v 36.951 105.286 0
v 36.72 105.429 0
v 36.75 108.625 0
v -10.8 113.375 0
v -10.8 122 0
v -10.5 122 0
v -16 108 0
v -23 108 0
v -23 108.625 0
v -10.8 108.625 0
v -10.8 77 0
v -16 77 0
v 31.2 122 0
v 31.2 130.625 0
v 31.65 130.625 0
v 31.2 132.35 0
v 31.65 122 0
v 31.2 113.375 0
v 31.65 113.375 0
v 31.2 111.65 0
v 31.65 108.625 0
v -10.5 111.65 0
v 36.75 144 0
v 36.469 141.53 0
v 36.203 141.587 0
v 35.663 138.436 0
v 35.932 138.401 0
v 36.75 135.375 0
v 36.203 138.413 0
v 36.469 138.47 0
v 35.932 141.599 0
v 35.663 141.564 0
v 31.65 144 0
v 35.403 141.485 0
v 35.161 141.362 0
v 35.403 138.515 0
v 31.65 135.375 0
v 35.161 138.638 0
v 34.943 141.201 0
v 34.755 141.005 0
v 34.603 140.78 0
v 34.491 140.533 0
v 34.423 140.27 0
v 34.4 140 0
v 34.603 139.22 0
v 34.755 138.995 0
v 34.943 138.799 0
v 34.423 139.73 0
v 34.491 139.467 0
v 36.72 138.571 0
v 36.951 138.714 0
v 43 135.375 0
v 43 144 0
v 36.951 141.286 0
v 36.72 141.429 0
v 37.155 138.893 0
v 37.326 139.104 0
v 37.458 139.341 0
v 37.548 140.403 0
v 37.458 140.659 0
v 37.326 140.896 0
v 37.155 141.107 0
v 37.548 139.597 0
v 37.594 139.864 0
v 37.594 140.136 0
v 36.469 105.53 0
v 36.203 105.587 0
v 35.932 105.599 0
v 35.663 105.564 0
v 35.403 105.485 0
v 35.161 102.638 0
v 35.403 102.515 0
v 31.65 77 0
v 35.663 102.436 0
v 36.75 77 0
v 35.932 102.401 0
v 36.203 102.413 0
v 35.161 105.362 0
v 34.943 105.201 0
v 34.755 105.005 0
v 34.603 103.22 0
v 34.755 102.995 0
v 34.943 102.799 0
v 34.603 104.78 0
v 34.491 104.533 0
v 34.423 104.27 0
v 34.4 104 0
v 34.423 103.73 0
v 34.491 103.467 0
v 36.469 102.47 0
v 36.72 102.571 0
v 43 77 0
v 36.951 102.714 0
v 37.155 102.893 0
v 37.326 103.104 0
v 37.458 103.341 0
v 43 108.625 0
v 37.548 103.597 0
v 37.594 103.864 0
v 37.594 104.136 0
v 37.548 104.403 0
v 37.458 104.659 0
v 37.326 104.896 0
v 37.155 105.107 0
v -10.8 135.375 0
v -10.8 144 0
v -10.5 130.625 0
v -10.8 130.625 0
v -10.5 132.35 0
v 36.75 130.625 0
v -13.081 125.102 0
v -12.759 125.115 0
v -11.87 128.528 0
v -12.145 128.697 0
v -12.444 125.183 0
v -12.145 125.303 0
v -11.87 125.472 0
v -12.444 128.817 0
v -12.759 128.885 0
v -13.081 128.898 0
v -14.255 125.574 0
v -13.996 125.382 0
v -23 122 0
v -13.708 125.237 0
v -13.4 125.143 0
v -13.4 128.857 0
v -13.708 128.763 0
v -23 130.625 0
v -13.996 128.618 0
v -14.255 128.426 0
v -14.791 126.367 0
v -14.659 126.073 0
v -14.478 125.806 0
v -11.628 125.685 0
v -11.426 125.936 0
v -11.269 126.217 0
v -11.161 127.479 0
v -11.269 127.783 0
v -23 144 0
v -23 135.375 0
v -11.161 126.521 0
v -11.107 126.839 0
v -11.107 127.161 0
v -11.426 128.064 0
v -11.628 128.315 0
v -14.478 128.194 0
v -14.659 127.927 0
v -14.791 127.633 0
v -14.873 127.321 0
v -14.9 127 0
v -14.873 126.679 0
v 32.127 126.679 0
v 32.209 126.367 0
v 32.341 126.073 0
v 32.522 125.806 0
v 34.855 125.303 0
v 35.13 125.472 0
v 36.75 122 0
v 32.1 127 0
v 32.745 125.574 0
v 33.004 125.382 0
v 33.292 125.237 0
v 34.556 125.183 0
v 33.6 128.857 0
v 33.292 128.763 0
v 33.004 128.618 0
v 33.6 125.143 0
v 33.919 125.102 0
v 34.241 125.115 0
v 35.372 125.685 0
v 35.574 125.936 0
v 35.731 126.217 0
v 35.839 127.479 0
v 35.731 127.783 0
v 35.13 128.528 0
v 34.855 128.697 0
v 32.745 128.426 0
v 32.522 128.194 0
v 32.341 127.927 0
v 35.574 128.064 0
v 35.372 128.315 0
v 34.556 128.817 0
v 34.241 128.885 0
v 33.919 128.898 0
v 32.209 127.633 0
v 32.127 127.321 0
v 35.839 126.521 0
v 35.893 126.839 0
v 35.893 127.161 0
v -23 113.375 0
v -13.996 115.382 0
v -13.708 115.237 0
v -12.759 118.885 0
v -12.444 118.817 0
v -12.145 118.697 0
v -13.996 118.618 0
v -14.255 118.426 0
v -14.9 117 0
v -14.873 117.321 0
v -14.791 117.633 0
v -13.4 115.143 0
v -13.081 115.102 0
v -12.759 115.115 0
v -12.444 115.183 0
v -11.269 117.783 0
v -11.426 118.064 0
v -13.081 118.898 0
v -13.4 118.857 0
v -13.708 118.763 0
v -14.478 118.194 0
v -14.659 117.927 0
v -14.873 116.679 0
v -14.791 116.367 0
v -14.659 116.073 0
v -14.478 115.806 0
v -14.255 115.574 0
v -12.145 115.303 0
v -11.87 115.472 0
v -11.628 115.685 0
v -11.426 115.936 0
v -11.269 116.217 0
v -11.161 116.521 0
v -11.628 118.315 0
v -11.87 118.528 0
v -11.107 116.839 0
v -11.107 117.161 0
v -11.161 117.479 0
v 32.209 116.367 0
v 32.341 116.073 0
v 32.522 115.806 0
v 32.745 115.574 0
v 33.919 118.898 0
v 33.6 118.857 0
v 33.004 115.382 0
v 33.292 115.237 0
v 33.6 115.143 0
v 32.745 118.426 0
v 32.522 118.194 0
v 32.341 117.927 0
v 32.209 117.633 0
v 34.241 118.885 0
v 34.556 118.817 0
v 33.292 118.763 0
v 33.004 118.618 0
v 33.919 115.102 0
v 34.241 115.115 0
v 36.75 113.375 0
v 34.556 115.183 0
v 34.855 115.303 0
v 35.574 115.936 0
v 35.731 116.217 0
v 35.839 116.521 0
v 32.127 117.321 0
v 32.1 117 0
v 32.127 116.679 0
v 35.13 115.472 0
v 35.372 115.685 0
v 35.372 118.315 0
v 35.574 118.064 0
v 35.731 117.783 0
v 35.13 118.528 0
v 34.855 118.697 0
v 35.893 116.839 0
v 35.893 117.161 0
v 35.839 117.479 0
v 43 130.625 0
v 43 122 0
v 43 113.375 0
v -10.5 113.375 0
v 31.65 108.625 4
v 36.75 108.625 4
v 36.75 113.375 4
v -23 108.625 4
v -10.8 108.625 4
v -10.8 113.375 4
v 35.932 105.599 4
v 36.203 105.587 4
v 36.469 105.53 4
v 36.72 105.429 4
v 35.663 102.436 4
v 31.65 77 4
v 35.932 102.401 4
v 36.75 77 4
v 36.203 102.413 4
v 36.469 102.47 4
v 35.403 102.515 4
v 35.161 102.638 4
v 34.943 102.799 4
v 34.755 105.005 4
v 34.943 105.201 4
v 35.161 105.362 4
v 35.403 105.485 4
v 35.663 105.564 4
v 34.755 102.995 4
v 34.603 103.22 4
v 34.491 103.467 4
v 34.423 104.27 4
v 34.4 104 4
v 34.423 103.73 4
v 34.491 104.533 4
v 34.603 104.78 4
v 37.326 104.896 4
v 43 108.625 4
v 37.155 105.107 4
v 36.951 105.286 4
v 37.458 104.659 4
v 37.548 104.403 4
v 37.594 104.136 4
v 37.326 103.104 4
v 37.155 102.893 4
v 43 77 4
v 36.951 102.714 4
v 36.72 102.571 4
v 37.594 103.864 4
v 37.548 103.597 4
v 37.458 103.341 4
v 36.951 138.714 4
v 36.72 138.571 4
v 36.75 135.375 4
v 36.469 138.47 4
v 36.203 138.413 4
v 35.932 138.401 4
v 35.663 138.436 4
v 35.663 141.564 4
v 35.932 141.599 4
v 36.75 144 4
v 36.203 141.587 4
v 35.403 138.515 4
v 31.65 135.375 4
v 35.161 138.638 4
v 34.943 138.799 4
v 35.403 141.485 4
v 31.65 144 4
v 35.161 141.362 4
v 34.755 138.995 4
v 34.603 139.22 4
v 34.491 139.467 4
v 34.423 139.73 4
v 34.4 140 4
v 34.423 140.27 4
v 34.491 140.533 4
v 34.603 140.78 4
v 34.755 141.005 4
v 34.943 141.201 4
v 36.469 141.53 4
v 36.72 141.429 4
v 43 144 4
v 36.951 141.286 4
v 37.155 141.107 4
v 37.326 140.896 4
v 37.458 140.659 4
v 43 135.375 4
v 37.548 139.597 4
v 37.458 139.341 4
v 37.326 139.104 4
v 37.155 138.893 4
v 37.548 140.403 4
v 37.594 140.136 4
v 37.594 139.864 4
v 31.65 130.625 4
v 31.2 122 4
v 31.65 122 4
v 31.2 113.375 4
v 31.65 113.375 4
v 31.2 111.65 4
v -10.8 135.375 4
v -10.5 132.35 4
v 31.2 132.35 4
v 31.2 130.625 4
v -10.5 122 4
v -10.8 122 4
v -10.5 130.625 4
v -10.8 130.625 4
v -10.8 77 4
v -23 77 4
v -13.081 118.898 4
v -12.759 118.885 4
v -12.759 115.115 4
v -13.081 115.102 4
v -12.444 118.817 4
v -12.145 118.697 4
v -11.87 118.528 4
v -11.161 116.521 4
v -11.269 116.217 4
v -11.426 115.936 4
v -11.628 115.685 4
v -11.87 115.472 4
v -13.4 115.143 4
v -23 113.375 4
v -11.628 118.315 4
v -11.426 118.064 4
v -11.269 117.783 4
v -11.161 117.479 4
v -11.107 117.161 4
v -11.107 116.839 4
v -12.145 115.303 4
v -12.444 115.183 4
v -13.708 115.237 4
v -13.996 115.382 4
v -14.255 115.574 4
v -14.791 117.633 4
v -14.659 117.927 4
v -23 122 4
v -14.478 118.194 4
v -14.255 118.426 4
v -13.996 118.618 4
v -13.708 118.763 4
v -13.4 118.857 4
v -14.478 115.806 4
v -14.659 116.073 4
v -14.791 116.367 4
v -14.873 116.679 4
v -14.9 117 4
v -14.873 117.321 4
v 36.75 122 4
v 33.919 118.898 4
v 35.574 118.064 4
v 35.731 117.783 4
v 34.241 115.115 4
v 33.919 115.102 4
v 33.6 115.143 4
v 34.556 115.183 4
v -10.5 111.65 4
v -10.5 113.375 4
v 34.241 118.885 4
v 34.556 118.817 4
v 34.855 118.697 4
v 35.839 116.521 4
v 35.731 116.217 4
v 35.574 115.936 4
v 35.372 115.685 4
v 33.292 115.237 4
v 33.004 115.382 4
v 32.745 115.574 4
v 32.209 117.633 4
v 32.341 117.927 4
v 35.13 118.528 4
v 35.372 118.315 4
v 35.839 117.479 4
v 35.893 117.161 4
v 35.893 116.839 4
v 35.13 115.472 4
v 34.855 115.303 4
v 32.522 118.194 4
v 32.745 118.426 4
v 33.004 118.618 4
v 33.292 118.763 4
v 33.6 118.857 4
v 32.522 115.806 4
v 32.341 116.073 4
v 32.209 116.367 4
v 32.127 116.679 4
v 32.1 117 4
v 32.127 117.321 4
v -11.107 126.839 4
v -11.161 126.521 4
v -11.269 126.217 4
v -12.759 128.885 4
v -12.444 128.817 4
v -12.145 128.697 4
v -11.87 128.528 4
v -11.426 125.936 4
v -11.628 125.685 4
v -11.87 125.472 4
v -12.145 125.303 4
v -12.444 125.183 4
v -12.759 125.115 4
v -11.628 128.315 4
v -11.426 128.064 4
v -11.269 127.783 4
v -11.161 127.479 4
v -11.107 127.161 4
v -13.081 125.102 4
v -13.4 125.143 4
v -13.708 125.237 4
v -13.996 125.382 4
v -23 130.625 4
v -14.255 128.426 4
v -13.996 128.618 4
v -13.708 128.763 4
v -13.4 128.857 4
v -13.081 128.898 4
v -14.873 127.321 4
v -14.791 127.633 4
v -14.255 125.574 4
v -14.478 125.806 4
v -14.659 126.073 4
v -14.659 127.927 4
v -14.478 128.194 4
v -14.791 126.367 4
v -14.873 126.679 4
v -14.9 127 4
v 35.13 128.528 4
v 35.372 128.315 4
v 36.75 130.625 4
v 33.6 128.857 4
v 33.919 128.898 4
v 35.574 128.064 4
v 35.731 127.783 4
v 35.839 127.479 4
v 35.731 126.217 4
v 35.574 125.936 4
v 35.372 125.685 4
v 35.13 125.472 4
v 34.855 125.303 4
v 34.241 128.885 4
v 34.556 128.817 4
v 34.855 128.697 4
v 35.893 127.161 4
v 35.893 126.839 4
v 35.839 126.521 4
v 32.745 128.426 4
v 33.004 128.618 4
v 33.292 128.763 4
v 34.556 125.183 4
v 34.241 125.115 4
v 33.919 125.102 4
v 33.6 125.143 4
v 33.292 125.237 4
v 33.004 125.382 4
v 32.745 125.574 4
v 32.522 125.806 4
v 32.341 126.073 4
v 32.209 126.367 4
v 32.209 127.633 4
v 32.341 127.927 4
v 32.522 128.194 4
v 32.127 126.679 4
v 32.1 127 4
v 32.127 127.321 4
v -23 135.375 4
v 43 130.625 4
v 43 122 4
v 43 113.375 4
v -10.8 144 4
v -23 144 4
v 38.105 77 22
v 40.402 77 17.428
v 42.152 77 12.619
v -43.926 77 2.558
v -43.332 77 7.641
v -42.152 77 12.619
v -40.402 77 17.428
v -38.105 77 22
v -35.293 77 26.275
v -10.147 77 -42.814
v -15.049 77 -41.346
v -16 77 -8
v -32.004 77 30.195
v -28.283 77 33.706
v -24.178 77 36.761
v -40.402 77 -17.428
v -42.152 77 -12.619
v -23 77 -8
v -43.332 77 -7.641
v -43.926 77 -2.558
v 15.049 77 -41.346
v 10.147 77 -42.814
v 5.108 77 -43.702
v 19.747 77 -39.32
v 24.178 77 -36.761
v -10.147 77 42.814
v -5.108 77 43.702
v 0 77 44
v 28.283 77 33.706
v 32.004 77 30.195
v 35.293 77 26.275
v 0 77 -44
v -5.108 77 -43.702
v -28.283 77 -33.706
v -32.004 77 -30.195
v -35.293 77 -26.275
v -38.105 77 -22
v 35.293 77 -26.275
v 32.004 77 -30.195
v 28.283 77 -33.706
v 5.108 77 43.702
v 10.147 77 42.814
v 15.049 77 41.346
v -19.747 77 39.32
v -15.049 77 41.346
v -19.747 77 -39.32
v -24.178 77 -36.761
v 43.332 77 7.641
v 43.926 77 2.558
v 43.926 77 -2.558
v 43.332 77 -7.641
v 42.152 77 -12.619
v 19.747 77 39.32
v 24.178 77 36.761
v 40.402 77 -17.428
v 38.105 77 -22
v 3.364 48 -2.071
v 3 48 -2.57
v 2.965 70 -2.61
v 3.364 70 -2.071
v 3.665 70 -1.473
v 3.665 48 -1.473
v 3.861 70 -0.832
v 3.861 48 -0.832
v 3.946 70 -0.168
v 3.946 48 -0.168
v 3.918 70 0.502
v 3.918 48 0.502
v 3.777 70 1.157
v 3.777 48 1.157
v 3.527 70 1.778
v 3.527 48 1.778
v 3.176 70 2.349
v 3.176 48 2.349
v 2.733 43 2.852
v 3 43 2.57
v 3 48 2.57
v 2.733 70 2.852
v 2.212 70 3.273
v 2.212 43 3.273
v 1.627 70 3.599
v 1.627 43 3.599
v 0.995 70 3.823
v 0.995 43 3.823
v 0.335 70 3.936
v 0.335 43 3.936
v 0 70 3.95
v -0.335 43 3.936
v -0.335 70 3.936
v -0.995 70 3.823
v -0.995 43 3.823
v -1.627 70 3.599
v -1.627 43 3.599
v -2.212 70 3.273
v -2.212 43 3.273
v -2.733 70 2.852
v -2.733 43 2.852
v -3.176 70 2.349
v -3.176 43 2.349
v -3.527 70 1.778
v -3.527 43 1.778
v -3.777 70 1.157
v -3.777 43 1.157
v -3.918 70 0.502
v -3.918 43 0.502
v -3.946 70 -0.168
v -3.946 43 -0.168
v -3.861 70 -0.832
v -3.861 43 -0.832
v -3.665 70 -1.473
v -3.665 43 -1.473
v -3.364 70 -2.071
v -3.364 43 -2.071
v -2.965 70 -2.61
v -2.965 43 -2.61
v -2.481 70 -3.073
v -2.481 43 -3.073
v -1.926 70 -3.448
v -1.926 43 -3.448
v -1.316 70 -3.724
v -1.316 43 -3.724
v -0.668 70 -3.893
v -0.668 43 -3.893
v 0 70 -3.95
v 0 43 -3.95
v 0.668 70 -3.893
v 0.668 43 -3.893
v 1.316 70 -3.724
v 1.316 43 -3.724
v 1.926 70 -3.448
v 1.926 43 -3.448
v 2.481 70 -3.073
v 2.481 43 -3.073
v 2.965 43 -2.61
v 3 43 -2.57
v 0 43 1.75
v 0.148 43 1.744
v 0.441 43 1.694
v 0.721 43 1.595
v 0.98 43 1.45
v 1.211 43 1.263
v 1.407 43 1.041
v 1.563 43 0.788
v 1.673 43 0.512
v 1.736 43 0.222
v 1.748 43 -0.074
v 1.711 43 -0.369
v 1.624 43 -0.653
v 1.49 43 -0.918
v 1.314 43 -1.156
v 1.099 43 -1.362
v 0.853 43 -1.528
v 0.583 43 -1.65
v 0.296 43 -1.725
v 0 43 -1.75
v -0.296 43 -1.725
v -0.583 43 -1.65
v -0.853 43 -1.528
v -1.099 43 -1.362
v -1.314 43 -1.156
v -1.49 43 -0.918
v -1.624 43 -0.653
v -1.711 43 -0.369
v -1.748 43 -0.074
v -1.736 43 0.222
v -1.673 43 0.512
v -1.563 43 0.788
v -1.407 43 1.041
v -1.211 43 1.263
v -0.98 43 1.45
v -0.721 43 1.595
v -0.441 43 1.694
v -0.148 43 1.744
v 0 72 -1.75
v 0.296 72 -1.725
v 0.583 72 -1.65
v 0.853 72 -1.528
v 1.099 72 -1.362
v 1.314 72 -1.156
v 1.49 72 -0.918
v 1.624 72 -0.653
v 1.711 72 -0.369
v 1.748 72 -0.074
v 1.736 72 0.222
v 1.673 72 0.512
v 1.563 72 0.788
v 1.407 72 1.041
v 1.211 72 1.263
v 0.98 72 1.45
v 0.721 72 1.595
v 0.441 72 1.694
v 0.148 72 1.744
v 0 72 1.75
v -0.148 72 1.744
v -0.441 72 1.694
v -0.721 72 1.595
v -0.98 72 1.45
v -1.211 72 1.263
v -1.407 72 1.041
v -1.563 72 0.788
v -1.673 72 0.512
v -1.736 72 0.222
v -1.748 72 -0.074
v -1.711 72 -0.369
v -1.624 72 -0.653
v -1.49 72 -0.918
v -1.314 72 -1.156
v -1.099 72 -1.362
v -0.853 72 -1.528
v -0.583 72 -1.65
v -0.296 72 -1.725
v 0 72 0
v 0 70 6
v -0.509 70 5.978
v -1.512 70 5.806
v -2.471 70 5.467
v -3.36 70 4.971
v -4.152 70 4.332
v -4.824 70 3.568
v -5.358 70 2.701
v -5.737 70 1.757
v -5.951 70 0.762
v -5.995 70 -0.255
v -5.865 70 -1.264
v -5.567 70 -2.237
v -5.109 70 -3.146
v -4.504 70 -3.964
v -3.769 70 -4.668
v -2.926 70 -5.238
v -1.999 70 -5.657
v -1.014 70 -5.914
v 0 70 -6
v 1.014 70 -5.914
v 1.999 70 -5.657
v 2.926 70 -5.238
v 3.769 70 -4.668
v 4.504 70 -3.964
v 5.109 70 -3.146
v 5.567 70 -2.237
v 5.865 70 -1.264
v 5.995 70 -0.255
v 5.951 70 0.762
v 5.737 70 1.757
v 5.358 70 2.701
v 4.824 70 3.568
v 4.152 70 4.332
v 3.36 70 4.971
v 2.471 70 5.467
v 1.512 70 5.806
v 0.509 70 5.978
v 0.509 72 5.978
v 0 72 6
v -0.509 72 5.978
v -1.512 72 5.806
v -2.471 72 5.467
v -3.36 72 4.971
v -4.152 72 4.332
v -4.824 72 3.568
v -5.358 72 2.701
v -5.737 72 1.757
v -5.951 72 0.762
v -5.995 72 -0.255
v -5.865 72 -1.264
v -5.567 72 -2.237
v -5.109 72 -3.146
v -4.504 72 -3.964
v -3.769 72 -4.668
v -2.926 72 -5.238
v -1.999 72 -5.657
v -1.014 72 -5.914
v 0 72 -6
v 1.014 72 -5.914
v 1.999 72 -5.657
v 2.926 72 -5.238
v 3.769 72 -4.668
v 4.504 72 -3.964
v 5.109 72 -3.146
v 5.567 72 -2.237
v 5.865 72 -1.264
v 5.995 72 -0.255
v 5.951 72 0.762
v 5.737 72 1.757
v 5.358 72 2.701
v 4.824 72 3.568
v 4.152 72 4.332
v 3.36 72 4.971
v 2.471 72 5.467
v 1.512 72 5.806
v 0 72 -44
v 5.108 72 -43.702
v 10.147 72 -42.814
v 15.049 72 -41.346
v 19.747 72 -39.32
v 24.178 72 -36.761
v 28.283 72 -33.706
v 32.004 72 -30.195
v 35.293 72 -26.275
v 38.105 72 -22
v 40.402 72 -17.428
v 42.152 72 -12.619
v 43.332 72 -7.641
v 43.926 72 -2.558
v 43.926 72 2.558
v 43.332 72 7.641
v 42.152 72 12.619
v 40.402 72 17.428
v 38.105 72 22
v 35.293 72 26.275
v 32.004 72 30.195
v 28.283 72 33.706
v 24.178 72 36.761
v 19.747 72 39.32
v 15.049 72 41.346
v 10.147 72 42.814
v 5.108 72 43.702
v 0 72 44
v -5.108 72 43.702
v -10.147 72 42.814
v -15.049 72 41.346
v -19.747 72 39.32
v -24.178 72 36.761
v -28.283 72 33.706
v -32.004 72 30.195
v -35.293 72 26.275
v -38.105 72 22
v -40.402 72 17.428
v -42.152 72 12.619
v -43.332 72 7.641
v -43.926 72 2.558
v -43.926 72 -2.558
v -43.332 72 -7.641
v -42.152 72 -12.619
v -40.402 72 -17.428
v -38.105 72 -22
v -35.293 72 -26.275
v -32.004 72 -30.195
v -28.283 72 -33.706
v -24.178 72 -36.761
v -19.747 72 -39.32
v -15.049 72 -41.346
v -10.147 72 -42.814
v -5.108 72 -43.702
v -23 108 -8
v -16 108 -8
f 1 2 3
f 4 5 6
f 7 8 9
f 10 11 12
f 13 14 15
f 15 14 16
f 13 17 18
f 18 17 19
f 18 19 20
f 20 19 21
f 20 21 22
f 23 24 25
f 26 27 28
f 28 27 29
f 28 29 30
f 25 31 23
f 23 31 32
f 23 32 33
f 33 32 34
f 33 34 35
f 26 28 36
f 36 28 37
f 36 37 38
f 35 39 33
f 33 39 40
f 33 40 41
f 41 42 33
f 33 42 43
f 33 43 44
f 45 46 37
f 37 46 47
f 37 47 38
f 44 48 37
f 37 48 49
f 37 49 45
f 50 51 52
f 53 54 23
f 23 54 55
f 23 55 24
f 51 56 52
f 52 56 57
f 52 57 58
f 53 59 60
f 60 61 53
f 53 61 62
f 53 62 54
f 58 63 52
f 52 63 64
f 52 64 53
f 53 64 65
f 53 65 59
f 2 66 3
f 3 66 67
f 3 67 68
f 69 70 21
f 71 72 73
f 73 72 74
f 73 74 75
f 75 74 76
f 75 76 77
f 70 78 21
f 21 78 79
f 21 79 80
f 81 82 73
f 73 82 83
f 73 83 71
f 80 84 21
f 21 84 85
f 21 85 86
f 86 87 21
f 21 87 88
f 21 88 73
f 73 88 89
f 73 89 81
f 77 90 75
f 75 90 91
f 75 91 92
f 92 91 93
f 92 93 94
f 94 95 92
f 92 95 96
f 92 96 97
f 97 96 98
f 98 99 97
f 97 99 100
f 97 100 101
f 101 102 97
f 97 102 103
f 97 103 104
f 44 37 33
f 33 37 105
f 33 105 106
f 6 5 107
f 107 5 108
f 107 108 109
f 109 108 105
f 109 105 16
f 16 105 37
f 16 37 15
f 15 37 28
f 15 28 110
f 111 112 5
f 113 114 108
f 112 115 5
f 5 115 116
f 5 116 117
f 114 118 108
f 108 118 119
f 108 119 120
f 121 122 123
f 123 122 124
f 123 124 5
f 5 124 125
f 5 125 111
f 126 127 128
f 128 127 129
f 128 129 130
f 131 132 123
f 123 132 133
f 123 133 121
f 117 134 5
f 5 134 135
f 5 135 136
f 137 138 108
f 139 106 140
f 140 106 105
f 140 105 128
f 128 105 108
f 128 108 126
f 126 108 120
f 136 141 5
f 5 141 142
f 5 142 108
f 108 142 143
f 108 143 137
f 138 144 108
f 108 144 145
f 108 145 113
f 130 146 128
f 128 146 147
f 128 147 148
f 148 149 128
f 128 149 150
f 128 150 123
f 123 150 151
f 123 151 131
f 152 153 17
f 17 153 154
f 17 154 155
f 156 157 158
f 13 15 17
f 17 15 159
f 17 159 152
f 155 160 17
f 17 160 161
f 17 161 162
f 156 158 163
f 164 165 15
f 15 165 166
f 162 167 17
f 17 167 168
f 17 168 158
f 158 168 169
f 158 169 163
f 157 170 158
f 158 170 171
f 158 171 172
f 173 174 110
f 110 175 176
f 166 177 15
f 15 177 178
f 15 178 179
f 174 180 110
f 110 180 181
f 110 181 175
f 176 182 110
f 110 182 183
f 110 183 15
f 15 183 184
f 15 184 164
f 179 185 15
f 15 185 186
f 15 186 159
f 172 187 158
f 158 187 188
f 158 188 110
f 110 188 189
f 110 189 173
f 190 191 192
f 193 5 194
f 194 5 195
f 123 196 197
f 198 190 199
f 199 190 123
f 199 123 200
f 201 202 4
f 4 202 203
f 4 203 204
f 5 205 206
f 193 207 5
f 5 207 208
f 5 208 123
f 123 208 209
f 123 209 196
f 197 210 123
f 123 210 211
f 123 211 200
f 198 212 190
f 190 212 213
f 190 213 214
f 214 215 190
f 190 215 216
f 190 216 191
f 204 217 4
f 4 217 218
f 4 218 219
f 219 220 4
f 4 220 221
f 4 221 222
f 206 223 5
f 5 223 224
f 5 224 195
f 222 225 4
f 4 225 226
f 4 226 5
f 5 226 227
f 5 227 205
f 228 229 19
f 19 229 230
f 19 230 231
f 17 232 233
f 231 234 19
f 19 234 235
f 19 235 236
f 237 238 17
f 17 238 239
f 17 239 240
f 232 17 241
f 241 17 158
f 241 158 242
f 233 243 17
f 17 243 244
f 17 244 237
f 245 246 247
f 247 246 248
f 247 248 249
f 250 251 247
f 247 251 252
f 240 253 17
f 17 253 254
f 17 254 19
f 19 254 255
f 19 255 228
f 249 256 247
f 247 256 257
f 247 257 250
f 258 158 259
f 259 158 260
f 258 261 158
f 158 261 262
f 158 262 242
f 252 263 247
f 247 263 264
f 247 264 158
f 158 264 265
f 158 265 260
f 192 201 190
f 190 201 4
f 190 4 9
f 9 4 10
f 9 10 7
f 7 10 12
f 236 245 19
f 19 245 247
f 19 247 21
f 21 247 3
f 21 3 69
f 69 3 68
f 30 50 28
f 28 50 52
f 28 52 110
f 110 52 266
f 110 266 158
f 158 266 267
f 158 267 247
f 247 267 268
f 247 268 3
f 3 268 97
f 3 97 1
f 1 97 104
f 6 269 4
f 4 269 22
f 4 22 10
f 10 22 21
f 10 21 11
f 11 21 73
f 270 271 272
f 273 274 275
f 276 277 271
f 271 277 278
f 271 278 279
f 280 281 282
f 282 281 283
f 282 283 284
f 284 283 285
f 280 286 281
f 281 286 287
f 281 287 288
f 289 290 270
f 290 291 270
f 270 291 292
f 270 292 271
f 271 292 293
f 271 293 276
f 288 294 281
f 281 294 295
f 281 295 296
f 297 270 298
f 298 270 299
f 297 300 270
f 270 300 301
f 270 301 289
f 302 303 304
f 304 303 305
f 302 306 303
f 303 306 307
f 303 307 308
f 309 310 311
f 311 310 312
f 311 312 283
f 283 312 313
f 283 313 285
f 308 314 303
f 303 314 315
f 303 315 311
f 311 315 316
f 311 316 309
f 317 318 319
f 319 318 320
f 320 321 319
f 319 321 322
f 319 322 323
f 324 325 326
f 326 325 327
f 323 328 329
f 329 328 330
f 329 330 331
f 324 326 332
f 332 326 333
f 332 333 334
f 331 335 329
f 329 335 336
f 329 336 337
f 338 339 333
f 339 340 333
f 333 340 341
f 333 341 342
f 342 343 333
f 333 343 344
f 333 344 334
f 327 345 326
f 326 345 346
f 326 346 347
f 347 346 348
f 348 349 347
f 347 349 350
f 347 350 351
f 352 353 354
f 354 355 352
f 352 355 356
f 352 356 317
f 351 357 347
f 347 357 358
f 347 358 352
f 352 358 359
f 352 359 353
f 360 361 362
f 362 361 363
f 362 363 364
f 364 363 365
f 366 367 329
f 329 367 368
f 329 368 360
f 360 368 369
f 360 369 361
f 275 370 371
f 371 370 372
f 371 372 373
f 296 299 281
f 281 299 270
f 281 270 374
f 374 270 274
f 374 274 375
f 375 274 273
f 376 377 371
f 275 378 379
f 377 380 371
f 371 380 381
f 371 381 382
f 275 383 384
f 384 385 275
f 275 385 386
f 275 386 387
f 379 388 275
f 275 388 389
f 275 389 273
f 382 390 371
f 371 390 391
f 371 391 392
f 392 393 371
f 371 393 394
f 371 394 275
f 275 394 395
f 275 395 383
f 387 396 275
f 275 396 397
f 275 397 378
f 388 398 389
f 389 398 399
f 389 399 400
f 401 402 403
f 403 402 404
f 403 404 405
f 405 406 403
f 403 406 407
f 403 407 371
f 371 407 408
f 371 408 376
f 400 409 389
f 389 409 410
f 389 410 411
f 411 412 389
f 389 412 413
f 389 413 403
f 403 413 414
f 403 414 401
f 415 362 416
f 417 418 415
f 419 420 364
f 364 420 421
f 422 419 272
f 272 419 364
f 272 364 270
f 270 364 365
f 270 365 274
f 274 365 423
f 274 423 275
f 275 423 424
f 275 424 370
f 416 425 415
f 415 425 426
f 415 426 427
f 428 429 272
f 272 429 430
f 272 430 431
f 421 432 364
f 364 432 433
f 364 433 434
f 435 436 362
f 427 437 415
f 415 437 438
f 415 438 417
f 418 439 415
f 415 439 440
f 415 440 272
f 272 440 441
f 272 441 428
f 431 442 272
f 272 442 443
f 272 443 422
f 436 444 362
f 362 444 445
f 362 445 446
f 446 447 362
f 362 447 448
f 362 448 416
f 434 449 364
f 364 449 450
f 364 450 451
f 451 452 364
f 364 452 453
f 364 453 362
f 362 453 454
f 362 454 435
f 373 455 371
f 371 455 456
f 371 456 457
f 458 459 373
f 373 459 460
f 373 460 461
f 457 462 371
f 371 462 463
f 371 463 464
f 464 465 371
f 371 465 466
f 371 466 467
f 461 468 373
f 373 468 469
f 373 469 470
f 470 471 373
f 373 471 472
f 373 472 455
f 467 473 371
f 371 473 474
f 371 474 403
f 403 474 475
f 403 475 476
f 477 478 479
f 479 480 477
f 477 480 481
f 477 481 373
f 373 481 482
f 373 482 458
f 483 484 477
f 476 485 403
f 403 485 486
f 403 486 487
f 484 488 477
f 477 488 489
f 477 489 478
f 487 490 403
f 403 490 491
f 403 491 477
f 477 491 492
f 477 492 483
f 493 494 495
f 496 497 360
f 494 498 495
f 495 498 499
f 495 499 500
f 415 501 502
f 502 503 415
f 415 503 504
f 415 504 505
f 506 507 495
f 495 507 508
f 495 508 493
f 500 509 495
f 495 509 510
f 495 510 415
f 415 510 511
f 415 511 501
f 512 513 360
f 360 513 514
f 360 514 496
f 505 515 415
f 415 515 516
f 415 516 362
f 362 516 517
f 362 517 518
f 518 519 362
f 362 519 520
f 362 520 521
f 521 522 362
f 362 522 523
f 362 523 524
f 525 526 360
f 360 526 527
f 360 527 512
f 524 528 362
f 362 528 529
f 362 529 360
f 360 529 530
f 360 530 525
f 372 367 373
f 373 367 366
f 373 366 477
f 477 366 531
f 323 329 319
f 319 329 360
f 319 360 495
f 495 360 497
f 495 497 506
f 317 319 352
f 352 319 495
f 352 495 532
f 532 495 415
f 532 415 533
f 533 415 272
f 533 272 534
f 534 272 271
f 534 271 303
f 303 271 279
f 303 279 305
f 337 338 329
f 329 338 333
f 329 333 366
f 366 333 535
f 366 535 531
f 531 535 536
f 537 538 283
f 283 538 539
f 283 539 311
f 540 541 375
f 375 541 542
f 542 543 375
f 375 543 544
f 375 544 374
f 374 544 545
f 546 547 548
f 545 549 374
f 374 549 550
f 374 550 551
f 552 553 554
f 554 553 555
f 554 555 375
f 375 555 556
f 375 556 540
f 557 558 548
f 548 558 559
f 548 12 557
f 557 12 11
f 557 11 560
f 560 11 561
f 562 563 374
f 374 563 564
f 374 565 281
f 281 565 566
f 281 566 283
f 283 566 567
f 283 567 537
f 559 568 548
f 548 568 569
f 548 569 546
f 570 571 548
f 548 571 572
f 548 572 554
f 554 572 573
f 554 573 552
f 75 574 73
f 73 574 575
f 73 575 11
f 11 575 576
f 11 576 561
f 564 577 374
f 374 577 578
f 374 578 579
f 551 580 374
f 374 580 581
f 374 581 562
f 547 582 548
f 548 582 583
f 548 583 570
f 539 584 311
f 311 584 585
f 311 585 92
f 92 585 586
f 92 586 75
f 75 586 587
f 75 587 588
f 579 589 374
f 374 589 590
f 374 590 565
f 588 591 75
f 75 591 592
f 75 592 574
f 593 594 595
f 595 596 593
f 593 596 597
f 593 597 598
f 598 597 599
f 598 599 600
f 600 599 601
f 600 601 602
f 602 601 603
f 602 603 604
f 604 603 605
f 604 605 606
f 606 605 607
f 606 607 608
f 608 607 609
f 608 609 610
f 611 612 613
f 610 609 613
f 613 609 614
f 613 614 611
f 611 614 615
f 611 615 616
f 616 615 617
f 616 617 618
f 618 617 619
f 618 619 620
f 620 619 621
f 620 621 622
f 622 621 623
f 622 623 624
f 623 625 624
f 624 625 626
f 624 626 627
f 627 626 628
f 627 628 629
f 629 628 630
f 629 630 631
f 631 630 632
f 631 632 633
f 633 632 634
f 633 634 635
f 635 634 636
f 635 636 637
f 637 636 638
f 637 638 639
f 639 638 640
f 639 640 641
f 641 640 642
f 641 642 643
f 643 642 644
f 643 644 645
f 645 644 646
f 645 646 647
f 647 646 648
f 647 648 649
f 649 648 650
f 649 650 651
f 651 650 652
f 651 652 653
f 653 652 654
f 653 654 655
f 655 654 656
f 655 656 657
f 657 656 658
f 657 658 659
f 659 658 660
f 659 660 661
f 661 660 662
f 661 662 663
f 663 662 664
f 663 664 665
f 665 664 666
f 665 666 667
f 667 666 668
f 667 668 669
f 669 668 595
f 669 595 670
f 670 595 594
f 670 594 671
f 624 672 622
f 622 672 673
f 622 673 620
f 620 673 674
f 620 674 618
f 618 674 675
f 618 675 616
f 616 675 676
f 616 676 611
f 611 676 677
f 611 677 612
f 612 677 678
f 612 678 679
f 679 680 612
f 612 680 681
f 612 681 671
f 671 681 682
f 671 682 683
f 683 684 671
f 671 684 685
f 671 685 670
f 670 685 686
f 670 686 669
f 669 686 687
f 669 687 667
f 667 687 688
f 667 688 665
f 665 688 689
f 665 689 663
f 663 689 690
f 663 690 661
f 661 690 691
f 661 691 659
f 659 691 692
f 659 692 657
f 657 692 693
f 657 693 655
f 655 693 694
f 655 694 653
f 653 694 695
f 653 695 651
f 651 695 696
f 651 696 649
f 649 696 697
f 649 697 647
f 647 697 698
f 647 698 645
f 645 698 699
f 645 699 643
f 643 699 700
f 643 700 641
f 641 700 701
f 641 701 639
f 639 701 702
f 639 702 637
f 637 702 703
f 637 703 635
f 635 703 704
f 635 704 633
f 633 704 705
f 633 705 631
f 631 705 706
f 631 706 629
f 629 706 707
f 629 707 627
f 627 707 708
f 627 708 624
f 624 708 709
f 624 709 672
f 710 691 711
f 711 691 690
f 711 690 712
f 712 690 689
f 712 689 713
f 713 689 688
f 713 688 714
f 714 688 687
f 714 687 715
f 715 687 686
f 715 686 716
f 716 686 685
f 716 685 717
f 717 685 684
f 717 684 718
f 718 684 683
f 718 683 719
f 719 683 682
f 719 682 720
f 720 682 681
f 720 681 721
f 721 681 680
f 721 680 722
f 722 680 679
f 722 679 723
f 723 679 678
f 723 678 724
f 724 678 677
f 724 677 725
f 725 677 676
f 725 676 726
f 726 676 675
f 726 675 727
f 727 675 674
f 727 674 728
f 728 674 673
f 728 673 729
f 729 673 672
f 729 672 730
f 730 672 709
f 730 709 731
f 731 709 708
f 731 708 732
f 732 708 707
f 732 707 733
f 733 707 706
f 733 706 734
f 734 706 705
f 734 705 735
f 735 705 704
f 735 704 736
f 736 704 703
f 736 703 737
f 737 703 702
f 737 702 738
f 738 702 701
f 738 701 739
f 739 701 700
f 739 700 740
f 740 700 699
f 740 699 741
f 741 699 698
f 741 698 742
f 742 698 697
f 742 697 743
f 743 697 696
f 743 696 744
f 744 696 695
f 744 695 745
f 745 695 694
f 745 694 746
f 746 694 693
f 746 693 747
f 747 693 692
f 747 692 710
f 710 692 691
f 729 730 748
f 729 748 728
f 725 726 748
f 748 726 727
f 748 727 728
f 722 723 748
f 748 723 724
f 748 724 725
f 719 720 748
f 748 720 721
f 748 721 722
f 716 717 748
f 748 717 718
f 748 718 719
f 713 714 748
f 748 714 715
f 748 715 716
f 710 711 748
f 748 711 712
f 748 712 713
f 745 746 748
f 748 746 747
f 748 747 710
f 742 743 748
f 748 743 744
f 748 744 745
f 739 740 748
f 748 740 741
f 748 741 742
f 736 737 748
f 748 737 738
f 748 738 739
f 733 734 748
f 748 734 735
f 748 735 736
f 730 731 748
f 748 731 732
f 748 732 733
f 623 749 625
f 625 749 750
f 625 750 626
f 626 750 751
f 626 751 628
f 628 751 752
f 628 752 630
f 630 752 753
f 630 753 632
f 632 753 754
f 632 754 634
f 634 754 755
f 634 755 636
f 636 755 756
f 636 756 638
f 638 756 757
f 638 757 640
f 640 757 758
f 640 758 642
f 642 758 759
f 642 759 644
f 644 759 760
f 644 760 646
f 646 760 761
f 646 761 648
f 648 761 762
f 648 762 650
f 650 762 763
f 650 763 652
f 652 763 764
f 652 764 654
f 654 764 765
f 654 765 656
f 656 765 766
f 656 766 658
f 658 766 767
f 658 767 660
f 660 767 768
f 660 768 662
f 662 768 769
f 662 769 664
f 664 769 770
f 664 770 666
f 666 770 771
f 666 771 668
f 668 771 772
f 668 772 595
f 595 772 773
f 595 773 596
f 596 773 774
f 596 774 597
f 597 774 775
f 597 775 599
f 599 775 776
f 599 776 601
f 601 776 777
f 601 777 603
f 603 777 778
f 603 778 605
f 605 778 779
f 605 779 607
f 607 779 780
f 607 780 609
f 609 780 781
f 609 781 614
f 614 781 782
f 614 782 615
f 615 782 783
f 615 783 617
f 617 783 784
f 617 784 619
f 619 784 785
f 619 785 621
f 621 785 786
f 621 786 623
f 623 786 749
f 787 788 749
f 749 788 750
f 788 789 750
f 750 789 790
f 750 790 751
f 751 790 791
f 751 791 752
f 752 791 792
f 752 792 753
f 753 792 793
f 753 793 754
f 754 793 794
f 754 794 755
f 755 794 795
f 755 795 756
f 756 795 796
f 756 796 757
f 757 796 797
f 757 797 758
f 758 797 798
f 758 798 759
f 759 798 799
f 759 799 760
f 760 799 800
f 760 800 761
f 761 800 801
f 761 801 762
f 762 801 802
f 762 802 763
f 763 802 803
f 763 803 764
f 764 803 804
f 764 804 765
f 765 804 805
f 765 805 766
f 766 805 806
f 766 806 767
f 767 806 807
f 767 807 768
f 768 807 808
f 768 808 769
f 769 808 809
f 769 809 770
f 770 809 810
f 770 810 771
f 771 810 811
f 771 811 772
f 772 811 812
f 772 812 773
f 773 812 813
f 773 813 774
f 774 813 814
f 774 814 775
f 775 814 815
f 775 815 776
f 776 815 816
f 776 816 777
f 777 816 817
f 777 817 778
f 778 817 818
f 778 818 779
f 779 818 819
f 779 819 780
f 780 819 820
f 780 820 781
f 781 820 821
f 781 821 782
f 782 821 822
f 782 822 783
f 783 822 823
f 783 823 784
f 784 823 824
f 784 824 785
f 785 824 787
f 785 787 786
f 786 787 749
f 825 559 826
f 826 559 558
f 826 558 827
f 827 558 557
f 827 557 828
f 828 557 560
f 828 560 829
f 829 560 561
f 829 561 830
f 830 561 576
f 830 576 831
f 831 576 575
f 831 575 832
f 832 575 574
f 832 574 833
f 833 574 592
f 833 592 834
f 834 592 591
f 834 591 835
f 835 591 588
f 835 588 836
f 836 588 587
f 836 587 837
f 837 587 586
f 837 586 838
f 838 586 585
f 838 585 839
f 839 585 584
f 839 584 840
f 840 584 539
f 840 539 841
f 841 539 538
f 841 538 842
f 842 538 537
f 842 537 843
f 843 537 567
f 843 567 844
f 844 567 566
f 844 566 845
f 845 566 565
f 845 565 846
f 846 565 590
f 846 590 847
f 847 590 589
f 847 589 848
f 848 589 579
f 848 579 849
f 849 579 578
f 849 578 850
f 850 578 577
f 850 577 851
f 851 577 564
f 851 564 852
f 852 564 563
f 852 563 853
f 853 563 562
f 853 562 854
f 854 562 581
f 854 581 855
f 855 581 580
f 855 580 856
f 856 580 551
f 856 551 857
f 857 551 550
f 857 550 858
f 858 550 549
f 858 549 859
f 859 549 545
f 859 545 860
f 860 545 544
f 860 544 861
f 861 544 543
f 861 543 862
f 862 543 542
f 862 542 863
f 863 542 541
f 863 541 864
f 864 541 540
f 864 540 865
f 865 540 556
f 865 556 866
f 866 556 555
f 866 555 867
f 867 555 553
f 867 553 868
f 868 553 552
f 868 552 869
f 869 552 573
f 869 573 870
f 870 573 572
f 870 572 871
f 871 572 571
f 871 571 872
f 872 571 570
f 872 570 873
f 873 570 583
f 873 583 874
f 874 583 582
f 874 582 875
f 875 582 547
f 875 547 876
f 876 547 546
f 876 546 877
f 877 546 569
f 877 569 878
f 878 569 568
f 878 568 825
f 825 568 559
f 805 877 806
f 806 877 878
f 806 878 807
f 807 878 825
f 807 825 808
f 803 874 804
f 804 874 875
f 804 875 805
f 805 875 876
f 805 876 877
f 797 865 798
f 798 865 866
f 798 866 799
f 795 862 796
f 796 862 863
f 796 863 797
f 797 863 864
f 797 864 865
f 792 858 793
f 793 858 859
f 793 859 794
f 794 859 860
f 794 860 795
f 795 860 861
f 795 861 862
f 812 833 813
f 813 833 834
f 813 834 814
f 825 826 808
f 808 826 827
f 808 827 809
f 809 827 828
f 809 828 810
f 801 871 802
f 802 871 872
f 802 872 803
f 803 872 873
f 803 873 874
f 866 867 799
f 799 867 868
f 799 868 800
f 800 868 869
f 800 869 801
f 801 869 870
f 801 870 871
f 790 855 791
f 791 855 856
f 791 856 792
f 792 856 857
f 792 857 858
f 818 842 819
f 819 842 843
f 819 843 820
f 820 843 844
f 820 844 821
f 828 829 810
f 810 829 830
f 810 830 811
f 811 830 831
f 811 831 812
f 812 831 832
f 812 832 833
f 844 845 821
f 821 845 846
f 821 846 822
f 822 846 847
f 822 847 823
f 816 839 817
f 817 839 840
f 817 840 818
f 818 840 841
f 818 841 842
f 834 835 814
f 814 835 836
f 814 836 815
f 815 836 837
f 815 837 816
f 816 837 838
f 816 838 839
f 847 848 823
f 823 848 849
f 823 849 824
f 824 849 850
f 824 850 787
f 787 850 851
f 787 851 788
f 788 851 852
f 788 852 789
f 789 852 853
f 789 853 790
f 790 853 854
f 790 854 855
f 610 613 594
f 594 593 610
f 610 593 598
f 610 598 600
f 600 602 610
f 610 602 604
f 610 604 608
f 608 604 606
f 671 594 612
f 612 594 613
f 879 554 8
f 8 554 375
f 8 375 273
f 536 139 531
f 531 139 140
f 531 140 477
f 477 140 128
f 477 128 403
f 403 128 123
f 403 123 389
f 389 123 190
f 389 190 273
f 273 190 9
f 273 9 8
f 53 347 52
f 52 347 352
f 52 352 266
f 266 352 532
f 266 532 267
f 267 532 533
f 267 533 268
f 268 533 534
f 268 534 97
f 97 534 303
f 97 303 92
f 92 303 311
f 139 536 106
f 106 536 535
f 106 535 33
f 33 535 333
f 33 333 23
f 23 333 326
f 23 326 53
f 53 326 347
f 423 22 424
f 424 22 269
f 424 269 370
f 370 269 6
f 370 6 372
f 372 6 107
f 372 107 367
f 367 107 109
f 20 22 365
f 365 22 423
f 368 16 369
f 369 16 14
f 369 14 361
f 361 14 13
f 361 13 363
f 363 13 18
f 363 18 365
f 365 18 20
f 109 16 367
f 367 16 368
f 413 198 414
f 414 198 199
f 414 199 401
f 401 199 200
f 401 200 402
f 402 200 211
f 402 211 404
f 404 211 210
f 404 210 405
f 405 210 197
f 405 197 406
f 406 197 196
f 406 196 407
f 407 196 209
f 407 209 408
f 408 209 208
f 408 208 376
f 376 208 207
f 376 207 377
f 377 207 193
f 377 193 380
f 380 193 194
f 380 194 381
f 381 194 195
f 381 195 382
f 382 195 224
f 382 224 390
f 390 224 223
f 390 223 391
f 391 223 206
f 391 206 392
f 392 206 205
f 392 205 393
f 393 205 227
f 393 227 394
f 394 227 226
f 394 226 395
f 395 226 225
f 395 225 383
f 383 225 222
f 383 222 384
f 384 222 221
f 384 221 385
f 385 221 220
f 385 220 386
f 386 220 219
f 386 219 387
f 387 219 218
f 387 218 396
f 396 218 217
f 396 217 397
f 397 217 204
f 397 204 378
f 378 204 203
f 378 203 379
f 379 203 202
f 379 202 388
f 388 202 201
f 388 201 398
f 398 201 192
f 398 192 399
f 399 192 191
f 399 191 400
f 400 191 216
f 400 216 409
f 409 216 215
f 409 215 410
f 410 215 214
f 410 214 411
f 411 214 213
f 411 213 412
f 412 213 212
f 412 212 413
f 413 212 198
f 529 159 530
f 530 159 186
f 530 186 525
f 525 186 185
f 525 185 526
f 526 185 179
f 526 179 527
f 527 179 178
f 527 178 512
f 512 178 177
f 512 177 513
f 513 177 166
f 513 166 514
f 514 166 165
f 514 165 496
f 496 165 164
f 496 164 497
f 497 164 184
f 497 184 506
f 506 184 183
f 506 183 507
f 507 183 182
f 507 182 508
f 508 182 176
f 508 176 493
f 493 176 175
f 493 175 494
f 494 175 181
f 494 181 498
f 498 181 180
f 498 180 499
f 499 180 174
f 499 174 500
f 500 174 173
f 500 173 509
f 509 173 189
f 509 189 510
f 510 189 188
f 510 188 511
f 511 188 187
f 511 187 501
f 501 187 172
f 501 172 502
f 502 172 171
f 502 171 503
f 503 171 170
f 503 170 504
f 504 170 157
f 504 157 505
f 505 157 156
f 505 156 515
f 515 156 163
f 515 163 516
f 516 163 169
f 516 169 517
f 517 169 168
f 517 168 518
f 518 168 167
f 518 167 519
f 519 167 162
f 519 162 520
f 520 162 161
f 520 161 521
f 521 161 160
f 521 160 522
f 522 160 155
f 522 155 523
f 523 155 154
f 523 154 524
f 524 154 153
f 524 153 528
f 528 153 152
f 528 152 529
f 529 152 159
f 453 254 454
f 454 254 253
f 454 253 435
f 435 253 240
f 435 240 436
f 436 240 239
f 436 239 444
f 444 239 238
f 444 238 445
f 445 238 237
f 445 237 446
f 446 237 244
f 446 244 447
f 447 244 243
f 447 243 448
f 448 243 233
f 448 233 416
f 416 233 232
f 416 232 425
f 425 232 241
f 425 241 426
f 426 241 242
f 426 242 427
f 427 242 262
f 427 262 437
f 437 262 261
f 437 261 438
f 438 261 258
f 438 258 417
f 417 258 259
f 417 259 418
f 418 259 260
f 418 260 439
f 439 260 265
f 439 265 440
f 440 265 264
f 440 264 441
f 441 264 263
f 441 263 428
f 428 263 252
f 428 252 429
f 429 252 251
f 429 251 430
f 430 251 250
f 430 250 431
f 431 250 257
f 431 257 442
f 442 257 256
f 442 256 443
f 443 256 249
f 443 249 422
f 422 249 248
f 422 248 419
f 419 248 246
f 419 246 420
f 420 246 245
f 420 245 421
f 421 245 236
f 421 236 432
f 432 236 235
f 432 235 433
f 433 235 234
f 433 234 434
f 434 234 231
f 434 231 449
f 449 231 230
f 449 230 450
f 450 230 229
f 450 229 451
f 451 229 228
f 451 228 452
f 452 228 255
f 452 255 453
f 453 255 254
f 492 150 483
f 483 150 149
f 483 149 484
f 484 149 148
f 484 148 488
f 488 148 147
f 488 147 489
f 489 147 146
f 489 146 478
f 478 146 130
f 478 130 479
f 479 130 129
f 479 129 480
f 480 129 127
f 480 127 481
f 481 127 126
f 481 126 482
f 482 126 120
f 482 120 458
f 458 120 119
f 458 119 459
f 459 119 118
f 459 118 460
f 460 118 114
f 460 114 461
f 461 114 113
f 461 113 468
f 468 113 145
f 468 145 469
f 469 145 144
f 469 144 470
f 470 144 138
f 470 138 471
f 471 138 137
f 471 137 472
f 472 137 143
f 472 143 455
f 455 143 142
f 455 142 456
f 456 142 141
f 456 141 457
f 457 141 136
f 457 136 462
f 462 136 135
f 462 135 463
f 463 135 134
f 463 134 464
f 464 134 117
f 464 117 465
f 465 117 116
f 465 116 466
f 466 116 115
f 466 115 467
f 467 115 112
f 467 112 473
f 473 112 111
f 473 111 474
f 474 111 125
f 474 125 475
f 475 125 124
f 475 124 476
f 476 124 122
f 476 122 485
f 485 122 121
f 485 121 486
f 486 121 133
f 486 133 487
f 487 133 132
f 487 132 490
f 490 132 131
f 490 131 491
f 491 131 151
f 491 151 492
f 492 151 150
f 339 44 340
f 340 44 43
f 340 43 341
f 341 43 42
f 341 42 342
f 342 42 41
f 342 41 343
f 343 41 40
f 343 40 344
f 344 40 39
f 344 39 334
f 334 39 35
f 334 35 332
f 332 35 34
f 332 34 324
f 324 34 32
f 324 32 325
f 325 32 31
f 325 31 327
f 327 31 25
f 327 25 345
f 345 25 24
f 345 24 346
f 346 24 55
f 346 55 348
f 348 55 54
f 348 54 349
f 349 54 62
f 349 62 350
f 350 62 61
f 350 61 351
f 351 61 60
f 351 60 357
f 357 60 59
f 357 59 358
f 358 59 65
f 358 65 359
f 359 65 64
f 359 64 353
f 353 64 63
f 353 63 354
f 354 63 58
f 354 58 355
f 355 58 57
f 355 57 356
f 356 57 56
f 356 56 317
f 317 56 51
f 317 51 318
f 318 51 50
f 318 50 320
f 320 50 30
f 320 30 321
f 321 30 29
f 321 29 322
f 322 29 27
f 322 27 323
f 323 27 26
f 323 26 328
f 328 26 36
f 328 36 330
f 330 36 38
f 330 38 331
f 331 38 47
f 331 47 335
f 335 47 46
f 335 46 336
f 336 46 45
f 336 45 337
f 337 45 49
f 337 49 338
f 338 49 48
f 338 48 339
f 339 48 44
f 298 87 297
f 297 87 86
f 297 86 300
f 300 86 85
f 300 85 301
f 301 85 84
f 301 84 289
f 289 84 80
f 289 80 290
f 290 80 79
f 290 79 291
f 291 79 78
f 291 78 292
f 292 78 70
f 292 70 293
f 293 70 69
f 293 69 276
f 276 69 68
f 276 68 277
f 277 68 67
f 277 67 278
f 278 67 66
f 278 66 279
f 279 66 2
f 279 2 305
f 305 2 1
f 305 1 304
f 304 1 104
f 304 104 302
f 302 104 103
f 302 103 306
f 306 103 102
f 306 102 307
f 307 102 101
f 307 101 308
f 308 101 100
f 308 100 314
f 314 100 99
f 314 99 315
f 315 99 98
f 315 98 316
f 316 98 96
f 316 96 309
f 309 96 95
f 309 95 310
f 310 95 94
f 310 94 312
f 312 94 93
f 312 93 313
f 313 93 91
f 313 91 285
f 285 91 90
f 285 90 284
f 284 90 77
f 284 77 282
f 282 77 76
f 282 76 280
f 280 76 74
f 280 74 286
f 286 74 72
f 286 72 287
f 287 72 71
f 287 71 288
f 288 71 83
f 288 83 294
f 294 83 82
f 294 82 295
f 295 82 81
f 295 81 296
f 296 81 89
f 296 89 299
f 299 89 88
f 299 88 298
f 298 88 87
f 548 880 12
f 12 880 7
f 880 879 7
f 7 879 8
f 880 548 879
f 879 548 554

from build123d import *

# Parameters (mm, degrees)
YAW_PLATFORM_START                     = 72
YAW_PLATFORM_PROFILE_R                 = 44
YAW_PLATFORM_DEPTH                     = 5
PRINTED_HOLLOW_YAW_SPINDLE_START       = 43
PRINTED_HOLLOW_YAW_SPINDLE_PROFILE_R   = 3.95
PRINTED_HOLLOW_YAW_SPINDLE_PROFILE_R_2 = 1.75
PRINTED_HOLLOW_YAW_SPINDLE_DEPTH       = 29
INNER_RACE_LOAD_SHOULDER_START         = 70
INNER_RACE_LOAD_SHOULDER_PROFILE_R     = 6
INNER_RACE_LOAD_SHOULDER_PROFILE_R_2   = 1.75
INNER_RACE_LOAD_SHOULDER_DEPTH         = 2
D_FLAT_ON_SPINDLE_END_START            = 43
D_FLAT_DRIVE_KEY_PROFILE_W             = 3
D_FLAT_DRIVE_KEY_PROFILE_H             = 10
D_FLAT_ON_SPINDLE_END_DEPTH            = 5
SHOULDER_MOUNT_PLATE_PROFILE_W         = 66
SHOULDER_MOUNT_PLATE_PROFILE_H         = 68
SHOULDER_MOUNT_PLATE_DEPTH             = 4
MG996_BODY_WINDOW_START                = -5
MG996_BODY_WINDOW_PROFILE_W            = 41.7
MG996_BODY_WINDOW_PROFILE_H            = 20.7
MG996_BODY_WINDOW_DEPTH                = 162.869372409
MG996_TAB_MOUNTS_START                 = -50
MG996_TAB_MOUNTS_PROFILE_R             = 1.9
MG996_TAB_MOUNTS_DEPTH                 = 207.869372409
PASSIVE_SHOULDER_STANDOFFS_START       = -50
PASSIVE_SHOULDER_STANDOFFS_PROFILE_R   = 1.6
PASSIVE_SHOULDER_STANDOFFS_DEPTH       = 207.869372409
UPRIGHT_RIB_START                      = -8
UPRIGHT_RIB_PROFILE_W                  = 7
UPRIGHT_RIB_PROFILE_H                  = 31
UPRIGHT_RIB_DEPTH                      = 12


with BuildPart() as part:
    # Yaw_platform_profile → Yaw_platform (new body)
    with BuildSketch(Plane(origin=(0, 0, 0), x_dir=(1, 0, 0), z_dir=(0, 1, 0)).offset(YAW_PLATFORM_START)):
        with Locations(Location((0, 0, 0), (0, 0, 270))):
            Circle(YAW_PLATFORM_PROFILE_R)
    extrude(amount=YAW_PLATFORM_DEPTH)

    # Printed_hollow_yaw_spindle_profile → Printed_hollow_yaw_spindle (add)
    with BuildSketch(Plane(origin=(0, 0, 0), x_dir=(1, 0, 0), z_dir=(0, 1, 0)).offset(PRINTED_HOLLOW_YAW_SPINDLE_START)):
        with Locations(Location((0, 0, 0), (0, 0, 90))):
            Circle(PRINTED_HOLLOW_YAW_SPINDLE_PROFILE_R)
        with Locations(Location((0, 0, 0), (0, 0, 90))):
            Circle(PRINTED_HOLLOW_YAW_SPINDLE_PROFILE_R_2, mode=Mode.SUBTRACT)
    extrude(amount=PRINTED_HOLLOW_YAW_SPINDLE_DEPTH)

    # Inner_race_load_shoulder_profile → Inner_race_load_shoulder (add)
    with BuildSketch(Plane(origin=(0, 0, 0), x_dir=(1, 0, 0), z_dir=(0, 1, 0)).offset(INNER_RACE_LOAD_SHOULDER_START)):
        with Locations(Location((0, 0, 0), (0, 0, 270))):
            Circle(INNER_RACE_LOAD_SHOULDER_PROFILE_R)
        with Locations(Location((0, 0, 0), (0, 0, 90))):
            Circle(INNER_RACE_LOAD_SHOULDER_PROFILE_R_2, mode=Mode.SUBTRACT)
    extrude(amount=INNER_RACE_LOAD_SHOULDER_DEPTH)

    # D_flat_drive_key_profile → D_flat_on_spindle_end (cut)
    with BuildSketch(Plane(origin=(0, 0, 0), x_dir=(1, 0, 0), z_dir=(0, 1, 0)).offset(D_FLAT_ON_SPINDLE_END_START)):
        with Locations((4.5, 0)):
            Rectangle(D_FLAT_DRIVE_KEY_PROFILE_W, D_FLAT_DRIVE_KEY_PROFILE_H)
    extrude(amount=D_FLAT_ON_SPINDLE_END_DEPTH, mode=Mode.SUBTRACT)

    # Shoulder_mount_plate_profile → Shoulder_mount_plate (add)
    with BuildSketch(Plane.XY):
        with Locations((10, 110)):
            Rectangle(SHOULDER_MOUNT_PLATE_PROFILE_W, SHOULDER_MOUNT_PLATE_PROFILE_H)
    extrude(amount=SHOULDER_MOUNT_PLATE_DEPTH)

    # MG996_body_window_profile → MG996_body_window (cut, through all)
    with BuildSketch(Plane.XY.offset(MG996_BODY_WINDOW_START)):
        with Locations((10.35, 122)):
            Rectangle(MG996_BODY_WINDOW_PROFILE_W, MG996_BODY_WINDOW_PROFILE_H)
    extrude(amount=MG996_BODY_WINDOW_DEPTH, mode=Mode.SUBTRACT)

    # MG996_tab_mounts_profile → MG996_tab_mounts (cut, through all)
    with BuildSketch(Plane.XY.offset(MG996_TAB_MOUNTS_START)):
        with Locations(Location((-13, 117, 0), (0, 0, 180))):
            Circle(MG996_TAB_MOUNTS_PROFILE_R)
        with Locations(Location((-13, 127, 0), (0, 0, 180))):
            Circle(MG996_TAB_MOUNTS_PROFILE_R)
        with Locations(Location((34, 117, 0), (0, 0, 180))):
            Circle(MG996_TAB_MOUNTS_PROFILE_R)
        with Locations(Location((34, 127, 0), (0, 0, 180))):
            Circle(MG996_TAB_MOUNTS_PROFILE_R)
    extrude(amount=MG996_TAB_MOUNTS_DEPTH, mode=Mode.SUBTRACT)

    # Passive_shoulder_standoffs_profile → Passive_shoulder_standoffs (cut, through all)
    with BuildSketch(Plane.XY.offset(PASSIVE_SHOULDER_STANDOFFS_START)):
        with Locations(Location((36, 104, 0), (0, 0, 180))):
            Circle(PASSIVE_SHOULDER_STANDOFFS_PROFILE_R)
        with Locations(Location((36, 140, 0), (0, 0, 180))):
            Circle(PASSIVE_SHOULDER_STANDOFFS_PROFILE_R)
    extrude(amount=PASSIVE_SHOULDER_STANDOFFS_DEPTH, mode=Mode.SUBTRACT)

    # Upright_rib_profile → Upright_rib (add)
    with BuildSketch(Plane.XY.offset(UPRIGHT_RIB_START)):
        with Locations((-19.5, 92.5)):
            Rectangle(UPRIGHT_RIB_PROFILE_W, UPRIGHT_RIB_PROFILE_H)
    extrude(amount=UPRIGHT_RIB_DEPTH)


solid = part.part
